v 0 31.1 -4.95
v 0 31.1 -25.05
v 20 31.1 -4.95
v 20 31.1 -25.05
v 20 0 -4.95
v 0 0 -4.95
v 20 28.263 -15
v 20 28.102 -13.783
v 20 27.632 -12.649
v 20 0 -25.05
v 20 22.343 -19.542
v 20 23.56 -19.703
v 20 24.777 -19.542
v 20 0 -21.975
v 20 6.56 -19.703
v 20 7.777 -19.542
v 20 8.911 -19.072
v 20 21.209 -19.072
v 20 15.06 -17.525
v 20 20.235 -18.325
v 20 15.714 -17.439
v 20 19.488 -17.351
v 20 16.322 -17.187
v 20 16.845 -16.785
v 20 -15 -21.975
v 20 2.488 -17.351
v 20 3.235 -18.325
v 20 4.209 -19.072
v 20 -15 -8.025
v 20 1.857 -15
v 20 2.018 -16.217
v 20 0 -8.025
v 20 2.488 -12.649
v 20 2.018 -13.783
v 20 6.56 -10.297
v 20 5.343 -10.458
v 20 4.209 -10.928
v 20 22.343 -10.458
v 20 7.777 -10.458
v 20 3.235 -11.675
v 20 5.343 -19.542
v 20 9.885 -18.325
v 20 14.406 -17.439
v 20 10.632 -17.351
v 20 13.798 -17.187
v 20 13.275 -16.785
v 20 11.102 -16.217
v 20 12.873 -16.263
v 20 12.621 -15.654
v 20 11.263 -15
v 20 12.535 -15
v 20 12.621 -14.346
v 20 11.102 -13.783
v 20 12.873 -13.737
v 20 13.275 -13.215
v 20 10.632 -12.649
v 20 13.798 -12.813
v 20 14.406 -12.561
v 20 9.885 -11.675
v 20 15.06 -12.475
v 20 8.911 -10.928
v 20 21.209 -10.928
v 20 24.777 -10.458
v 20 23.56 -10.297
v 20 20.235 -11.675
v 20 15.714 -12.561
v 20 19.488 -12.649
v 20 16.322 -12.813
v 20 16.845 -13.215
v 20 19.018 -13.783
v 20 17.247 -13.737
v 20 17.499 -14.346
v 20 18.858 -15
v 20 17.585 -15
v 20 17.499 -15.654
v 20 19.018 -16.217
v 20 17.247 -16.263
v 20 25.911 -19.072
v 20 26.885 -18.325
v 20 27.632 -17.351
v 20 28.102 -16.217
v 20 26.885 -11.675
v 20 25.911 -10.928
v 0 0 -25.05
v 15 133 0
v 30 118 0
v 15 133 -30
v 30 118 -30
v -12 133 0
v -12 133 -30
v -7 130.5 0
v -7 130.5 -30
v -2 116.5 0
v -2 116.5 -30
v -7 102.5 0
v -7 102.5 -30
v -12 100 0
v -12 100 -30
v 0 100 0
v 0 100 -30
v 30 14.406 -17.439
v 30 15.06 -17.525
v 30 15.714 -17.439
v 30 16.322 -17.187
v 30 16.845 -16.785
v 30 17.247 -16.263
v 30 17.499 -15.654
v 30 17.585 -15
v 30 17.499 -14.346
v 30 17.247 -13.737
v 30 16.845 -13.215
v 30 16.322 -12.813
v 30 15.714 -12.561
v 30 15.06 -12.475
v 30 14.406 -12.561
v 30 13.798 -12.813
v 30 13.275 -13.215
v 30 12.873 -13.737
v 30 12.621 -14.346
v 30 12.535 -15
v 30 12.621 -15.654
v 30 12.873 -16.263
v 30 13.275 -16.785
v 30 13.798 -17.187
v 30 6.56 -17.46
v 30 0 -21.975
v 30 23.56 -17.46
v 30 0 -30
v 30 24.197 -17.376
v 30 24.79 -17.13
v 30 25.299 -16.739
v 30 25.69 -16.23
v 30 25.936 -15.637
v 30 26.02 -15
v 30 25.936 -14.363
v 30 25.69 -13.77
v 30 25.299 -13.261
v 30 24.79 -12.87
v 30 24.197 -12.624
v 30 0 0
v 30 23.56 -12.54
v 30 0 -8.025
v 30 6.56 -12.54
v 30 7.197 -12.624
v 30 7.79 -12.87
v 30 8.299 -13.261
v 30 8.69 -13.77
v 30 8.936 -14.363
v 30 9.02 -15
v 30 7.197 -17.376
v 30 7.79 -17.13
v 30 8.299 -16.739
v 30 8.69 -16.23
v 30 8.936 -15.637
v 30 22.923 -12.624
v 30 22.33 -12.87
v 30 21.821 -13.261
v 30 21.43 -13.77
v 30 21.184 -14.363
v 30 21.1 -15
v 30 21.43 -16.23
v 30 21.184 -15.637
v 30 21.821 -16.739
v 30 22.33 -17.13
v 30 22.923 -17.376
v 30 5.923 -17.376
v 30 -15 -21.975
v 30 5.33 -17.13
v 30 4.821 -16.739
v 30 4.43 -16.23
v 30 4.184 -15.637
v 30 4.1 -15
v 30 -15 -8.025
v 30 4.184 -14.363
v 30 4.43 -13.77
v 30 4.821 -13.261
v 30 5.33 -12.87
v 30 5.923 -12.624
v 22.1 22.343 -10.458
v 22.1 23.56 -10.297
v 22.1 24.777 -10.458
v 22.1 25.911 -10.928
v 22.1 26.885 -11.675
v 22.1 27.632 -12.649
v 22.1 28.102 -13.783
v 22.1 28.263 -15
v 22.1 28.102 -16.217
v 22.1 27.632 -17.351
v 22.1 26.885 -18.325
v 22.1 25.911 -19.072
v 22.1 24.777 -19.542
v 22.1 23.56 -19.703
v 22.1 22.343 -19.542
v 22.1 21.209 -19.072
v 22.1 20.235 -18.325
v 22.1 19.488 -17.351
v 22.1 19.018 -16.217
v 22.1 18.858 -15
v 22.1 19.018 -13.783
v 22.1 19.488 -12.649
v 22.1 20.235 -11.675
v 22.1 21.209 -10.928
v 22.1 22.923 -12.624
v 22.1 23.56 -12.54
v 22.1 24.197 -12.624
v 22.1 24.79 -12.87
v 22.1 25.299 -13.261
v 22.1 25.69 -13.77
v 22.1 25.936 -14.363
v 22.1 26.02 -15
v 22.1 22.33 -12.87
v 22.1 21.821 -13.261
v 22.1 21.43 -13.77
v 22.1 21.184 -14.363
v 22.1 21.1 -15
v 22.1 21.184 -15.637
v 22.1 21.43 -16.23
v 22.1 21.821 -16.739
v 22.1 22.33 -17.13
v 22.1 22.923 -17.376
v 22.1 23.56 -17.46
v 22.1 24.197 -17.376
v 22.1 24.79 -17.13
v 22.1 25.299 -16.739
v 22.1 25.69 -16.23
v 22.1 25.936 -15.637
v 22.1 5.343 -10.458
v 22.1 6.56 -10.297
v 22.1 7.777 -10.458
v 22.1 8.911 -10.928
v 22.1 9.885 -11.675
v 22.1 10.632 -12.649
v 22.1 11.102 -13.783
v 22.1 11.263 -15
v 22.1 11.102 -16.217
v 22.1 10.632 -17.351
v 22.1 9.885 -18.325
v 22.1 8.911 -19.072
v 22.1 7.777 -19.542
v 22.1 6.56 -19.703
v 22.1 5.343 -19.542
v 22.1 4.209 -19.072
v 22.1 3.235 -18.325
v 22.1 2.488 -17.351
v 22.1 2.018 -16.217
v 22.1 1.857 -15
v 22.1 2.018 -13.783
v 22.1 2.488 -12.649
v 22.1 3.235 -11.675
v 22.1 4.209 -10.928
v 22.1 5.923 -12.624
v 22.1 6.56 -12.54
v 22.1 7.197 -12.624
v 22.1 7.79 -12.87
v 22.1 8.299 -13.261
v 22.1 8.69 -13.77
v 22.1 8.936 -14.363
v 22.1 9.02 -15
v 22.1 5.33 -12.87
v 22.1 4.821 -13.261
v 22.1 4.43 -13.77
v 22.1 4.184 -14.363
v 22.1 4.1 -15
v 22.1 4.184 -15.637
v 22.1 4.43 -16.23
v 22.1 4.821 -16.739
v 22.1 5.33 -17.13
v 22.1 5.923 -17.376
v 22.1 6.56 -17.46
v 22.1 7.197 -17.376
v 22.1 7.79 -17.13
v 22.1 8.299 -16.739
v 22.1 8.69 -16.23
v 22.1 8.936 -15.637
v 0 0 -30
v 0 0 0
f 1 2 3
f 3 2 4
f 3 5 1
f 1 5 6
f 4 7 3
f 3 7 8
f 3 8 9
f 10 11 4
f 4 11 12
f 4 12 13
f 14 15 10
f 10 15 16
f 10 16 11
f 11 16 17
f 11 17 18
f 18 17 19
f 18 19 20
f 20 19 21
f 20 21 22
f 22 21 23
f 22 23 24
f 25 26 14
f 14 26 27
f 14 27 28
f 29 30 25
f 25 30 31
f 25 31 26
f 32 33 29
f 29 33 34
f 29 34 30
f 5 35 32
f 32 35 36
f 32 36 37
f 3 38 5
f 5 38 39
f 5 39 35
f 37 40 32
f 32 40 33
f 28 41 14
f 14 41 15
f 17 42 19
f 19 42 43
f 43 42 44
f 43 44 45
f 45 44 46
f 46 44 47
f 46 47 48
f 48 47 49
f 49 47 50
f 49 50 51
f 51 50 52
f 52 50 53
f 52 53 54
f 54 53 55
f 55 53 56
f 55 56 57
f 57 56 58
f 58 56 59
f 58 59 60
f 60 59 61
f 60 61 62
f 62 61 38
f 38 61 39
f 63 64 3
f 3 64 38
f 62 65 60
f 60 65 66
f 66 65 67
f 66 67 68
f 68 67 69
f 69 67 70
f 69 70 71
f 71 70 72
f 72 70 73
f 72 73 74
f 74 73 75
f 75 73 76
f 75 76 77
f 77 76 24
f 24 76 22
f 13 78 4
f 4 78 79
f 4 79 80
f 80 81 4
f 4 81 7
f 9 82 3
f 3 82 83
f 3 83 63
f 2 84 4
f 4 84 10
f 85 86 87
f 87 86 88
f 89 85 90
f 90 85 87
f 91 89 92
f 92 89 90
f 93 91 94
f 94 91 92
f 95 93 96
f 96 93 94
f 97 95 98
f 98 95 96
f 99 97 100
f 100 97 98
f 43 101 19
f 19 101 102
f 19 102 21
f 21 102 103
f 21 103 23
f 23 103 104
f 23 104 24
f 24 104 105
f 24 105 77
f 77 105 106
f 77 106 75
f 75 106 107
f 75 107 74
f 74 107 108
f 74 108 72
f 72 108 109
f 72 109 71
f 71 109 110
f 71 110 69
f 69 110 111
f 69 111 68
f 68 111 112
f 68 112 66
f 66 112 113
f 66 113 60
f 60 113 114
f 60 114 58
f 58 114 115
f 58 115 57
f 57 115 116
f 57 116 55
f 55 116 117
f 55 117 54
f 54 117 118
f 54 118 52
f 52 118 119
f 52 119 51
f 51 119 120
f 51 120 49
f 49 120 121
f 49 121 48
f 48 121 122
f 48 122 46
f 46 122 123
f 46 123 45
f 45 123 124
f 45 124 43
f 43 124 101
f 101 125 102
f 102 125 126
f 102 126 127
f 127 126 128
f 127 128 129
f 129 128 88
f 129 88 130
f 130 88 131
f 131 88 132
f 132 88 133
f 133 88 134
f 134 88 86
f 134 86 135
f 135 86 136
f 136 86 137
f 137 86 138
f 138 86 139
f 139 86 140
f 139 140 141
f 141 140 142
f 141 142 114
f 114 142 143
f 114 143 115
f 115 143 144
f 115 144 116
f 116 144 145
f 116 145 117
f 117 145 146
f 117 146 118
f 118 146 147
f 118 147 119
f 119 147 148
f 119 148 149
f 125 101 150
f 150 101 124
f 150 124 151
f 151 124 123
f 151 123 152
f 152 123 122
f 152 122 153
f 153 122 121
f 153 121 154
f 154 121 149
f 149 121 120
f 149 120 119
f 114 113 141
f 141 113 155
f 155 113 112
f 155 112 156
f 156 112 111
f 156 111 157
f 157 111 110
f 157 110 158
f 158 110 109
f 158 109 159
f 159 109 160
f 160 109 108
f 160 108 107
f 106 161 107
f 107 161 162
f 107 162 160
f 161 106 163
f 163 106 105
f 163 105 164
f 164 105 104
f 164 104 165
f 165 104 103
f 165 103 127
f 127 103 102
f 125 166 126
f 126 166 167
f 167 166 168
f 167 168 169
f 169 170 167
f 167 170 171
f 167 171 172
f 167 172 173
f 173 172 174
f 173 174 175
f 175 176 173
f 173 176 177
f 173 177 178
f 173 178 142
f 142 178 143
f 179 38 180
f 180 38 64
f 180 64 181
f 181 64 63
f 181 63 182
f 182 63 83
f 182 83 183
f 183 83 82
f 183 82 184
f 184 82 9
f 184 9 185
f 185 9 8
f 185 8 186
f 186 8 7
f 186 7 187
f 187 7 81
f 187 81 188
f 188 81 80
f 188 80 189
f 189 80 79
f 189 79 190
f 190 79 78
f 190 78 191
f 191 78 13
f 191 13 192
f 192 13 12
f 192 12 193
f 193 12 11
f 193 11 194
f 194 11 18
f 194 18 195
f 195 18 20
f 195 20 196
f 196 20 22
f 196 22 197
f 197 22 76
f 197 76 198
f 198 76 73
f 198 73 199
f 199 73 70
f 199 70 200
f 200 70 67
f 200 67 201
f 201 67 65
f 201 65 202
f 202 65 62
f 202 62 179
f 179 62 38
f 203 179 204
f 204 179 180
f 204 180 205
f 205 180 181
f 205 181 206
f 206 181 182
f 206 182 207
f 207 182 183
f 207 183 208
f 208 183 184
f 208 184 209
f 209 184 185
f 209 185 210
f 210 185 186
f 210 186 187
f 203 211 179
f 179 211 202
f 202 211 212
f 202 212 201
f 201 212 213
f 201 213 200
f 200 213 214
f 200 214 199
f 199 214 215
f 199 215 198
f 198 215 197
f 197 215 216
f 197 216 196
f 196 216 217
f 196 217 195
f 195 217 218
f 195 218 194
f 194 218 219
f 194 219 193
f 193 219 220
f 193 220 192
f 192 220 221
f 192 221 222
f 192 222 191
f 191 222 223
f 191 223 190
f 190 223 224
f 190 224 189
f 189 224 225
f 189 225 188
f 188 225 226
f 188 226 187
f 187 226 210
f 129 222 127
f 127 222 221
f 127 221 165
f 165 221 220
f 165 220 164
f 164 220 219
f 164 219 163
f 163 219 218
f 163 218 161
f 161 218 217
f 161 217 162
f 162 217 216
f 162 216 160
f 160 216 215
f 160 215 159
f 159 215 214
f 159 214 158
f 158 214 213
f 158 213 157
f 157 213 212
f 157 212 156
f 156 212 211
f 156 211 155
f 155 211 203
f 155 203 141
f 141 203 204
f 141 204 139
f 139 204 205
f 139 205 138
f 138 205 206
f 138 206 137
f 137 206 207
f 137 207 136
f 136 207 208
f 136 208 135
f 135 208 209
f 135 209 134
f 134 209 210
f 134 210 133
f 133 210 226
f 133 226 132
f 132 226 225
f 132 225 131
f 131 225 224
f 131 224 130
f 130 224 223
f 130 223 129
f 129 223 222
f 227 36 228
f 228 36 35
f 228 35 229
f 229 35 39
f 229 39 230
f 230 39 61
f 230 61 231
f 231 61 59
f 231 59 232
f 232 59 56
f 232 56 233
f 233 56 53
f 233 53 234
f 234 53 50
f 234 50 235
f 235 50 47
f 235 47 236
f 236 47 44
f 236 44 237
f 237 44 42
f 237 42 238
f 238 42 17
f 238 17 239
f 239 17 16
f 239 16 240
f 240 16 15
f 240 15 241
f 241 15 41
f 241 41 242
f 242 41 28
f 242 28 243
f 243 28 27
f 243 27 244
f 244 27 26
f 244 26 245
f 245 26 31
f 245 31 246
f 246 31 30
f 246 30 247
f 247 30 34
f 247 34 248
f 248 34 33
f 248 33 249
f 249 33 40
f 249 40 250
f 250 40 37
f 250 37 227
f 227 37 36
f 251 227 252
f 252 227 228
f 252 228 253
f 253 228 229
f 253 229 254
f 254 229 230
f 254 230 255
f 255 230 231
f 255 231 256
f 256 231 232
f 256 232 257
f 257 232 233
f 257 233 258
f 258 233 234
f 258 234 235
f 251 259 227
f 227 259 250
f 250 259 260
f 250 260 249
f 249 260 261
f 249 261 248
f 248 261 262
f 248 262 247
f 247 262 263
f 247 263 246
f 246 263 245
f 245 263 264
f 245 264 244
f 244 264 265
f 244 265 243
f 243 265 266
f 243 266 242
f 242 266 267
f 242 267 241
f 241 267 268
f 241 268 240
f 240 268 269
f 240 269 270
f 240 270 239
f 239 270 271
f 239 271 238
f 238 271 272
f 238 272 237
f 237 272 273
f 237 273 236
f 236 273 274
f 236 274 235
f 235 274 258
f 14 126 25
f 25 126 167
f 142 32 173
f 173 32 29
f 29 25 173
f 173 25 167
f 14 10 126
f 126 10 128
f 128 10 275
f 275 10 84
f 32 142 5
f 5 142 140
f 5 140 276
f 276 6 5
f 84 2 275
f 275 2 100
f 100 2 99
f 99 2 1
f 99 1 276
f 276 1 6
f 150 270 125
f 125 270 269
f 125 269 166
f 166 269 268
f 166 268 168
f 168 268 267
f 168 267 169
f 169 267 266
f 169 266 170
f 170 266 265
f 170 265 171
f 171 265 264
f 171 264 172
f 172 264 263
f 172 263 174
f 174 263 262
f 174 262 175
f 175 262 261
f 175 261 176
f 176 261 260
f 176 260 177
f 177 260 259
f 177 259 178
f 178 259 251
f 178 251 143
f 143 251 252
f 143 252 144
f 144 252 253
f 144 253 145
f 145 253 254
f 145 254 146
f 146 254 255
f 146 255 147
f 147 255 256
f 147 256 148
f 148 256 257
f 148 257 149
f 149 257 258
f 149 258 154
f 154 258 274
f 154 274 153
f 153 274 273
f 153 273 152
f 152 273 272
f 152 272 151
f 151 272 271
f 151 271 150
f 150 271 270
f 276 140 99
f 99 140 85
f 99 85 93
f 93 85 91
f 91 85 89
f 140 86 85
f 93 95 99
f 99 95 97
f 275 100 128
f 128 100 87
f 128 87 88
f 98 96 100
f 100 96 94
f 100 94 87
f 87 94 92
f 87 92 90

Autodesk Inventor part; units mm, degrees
ref_plane "YZ Plane" through (0, 0, 0) normal (1, 0, 0) x (0, 1, 0)
ref_plane "XZ Plane" through (0, 0, 0) normal (0, 1, 0) x (-1, 0, 0)
ref_plane "XY Plane" through (0, 0, 0) normal (0, 0, 1) x (1, 0, 0)
sketch "Sketch1" plane through (0, 0, 0) normal (0, 0, 1) x (1, 0, 0)
  line L0 (0, 0) -> (25, 0)
  line L1 (25, 0) -> (25, 40)
  line L2 (25, 40) -> (0, 40)
  line L3 (0, 40) -> (0, 0)
  dimension "d1" = 25
  dimension "d2" = 40
  dimension "d3" = 25
extrude "Extrusion1" add sketch "Sketch1" against normal blind 30
sketch "Sketch2" plane through (25, 0, 0) normal (1, 0, 0) x (0, 0, -1)
  line L0 (0, 0) -> (30, 0) projected
  circle A0 centre (15, 6.56) radius 2.46
extrude "Extrusion2" cut sketch "Sketch2" against normal blind 30
sketch "Sketch3" plane through (0, 0, 0) normal (-1, 0, 0) x (0, 0, 1)
  line L0 (0, 0) -> (-30, 0) projected
  line L1 (-25.05, 0) -> (-4.95, 0)
  line L2 (-4.95, 0) -> (-4.95, 33.12)
  line L3 (-4.95, 33.12) -> (-25.05, 33.12)
  line L4 (-25.05, 33.12) -> (-25.05, 0)
  dimension "d11" = 20.1
extrude "Extrusion3" cut sketch "Sketch3" against normal blind 20
sketch "Sketch4" plane through (0, 0, 0) normal (0, -1, 0) x (1, 0, 0)
  line L0 (20, -4.95) -> (20, -25.05) projected
  line L1 (20, -15) -> (25, -15)
  line L2 (25, 0) -> (25, -30) projected
  line L3 (20, -8.025) -> (25, -8.025)
  line L4 (25, -8.025) -> (25, -21.975)
  line L5 (25, -21.975) -> (20, -21.975)
  line L6 (20, -21.975) -> (20, -8.025)
  line L7 (20, -8.025) -> (25, -21.975) construction
  line L8 (25, -8.025) -> (20, -21.975) construction
  line L9 (25, -12.54) -> (25, -17.46) projected
  point P0 (0, 0)
  point P1 (22.5, -15)
  dimension "d14" = 13.95
extrude "Extrusion4" add sketch "Sketch4" along normal blind 15
sketch "Sketch5" plane through (20, 0, 0) normal (-1, 0, 0) x (0, 0, 1)
  circle A0 centre (-15, 6.56) radius 2.46 projected
  circle A1 centre (-15, 6.56) radius 4.7025
  circle A2 centre (-15, 6.56) radius 2.46 projected
  circle A3 centre (-15, 6.56) radius 2.46
  point P0 (0, 0)
  dimension "d17" = 9.405
extrude "Extrusion5" cut sketch "Sketch5" against normal blind 2.1
sketch "Sketch6" plane through (25, 0, 0) normal (1, 0, 0) x (0, 0, -1)
  circle A0 centre (15, 6.56) radius 4.7025 projected
  line L0 (15, 6.56) -> (15, 23.56)
  circle A1 centre (15, 23.56) radius 2.46
  point P0 (0, 0)
  dimension "d20" = 17
  dimension "d21" = 4.92
extrude "Extrusion6" cut sketch "Sketch6" against normal blind 10 contours A1
sketch "Sketch7" plane through (20, 0, 0) normal (-1, 0, 0) x (0, 0, 1)
  circle A0 centre (-15, 23.56) radius 2.46 projected
  circle A1 centre (-15, 23.56) radius 4.7025
  point P0 (0, 0)
  dimension "d24" = 9.405
extrude "Extrusion7" cut sketch "Sketch7" against normal blind 2.1
sketch "Sketch9" plane through (25, 0, 0) normal (1, 0, 0) x (0, 0, -1)
  circle A0 centre (15, 6.56) radius 2.46 projected
  circle A1 centre (15, 6.56) radius 2.46
  circle A2 centre (15, 23.56) radius 2.46 projected
  circle A3 centre (15, 23.56) radius 2.46
  line L0 (30, 40) -> (30, 0) projected
  line L1 (30, 0) -> (30, 40)
  line L2 (30, 40) -> (0, 40)
  line L3 (0, 40) -> (0, 0)
  line L4 (0, 0) -> (8.025, 0) projected
  line L5 (21.975, 0) -> (21.975, -15)
  line L6 (21.975, -15) -> (8.025, -15)
  line L7 (8.025, -15) -> (8.025, 0)
  line L8 (0, 0) -> (8.025, 0)
  line L9 (21.975, 0) -> (30, 0)
extrude "Extrusion8" add sketch "Sketch9" along normal blind 5
sketch "Sketch10" plane through (0, 40, 0) normal (0, 1, 0) x (1, 0, 0)
  line L0 (0, 30) -> (30, 30) projected
  line L1 (30, 0) -> (0, 0) projected
  line L2 (0, 30) -> (30, 30)
  line L3 (30, 30) -> (30, 0)
  line L4 (30, 0) -> (0, 0)
  line L5 (0, 0) -> (0, 30)
extrude "Extrusion9" add sketch "Sketch10" along normal blind 30
sketch "Sketch12" plane through (30, 0, 0) normal (1, 0, 0) x (0, 0, -1)
  circle A0 centre (15, 6.56) radius 2.46 projected
  line L0 (15, 6.56) -> (15, 15.06)
  circle A1 centre (15, 15.06) radius 2.525
  point P0 (0, 0)
  dimension "d31" = 8.5
  dimension "d33" = 5.05
extrude "Extrusion10" cut sketch "Sketch12" against normal blind 30 contours A1
sketch "Sketch14" plane through (0, 0, 0) normal (0, 0, 1) x (1, 0, 0)
  line L0 (30, 70) -> (0, 70) projected
  line L1 (0, 70) -> (0, 85)
  line L2 (30, 0) -> (30, 70) projected
  line L3 (30, 118) -> (30, 70)
  line L4 (30, 105) -> (30, 100)
  line L5 (-12, 133) -> (15, 133)
  line L6 (-7, 130.5) -> (-12, 133)
  line L7 (-7, 130.5) -> (-2, 116.5)
  line L8 (-7, 102.5) -> (-12, 100)
  line L9 (-7, 102.5) -> (-2, 116.5)
  line L10 (30, 118) -> (15, 133)
  line L11 (0, 100) -> (-12, 100)
  line L12 (0, 100) -> (0, 85)
  point P0 (0, 0)
  dimension "d79" = 12
extrude "Extrusion12" add sketch "Sketch14" against normal blind 30
sketch "Sketch15" plane through (0, 0, -25.05) normal (-1, 0, 0) x (0, 0, 1)
  line L0 (0, 33.12) -> (20.1, 33.12) projected
  line L1 (20.1, 33.12) -> (20.1, 0) projected
  line L2 (0, 33.12) -> (20.1, 33.12)
  line L3 (20.1, 33.12) -> (20.1, 31.1)
  line L4 (20.1, 31.1) -> (0, 31.1)
  line L5 (0, 31.1) -> (0, 33.12)
  point P0 (25.05, 0)
  dimension "d57" = 2.02
extrude "Extrusion13" add sketch "Sketch15" against normal blind 20
properties part number "28mm_x_30mm"
